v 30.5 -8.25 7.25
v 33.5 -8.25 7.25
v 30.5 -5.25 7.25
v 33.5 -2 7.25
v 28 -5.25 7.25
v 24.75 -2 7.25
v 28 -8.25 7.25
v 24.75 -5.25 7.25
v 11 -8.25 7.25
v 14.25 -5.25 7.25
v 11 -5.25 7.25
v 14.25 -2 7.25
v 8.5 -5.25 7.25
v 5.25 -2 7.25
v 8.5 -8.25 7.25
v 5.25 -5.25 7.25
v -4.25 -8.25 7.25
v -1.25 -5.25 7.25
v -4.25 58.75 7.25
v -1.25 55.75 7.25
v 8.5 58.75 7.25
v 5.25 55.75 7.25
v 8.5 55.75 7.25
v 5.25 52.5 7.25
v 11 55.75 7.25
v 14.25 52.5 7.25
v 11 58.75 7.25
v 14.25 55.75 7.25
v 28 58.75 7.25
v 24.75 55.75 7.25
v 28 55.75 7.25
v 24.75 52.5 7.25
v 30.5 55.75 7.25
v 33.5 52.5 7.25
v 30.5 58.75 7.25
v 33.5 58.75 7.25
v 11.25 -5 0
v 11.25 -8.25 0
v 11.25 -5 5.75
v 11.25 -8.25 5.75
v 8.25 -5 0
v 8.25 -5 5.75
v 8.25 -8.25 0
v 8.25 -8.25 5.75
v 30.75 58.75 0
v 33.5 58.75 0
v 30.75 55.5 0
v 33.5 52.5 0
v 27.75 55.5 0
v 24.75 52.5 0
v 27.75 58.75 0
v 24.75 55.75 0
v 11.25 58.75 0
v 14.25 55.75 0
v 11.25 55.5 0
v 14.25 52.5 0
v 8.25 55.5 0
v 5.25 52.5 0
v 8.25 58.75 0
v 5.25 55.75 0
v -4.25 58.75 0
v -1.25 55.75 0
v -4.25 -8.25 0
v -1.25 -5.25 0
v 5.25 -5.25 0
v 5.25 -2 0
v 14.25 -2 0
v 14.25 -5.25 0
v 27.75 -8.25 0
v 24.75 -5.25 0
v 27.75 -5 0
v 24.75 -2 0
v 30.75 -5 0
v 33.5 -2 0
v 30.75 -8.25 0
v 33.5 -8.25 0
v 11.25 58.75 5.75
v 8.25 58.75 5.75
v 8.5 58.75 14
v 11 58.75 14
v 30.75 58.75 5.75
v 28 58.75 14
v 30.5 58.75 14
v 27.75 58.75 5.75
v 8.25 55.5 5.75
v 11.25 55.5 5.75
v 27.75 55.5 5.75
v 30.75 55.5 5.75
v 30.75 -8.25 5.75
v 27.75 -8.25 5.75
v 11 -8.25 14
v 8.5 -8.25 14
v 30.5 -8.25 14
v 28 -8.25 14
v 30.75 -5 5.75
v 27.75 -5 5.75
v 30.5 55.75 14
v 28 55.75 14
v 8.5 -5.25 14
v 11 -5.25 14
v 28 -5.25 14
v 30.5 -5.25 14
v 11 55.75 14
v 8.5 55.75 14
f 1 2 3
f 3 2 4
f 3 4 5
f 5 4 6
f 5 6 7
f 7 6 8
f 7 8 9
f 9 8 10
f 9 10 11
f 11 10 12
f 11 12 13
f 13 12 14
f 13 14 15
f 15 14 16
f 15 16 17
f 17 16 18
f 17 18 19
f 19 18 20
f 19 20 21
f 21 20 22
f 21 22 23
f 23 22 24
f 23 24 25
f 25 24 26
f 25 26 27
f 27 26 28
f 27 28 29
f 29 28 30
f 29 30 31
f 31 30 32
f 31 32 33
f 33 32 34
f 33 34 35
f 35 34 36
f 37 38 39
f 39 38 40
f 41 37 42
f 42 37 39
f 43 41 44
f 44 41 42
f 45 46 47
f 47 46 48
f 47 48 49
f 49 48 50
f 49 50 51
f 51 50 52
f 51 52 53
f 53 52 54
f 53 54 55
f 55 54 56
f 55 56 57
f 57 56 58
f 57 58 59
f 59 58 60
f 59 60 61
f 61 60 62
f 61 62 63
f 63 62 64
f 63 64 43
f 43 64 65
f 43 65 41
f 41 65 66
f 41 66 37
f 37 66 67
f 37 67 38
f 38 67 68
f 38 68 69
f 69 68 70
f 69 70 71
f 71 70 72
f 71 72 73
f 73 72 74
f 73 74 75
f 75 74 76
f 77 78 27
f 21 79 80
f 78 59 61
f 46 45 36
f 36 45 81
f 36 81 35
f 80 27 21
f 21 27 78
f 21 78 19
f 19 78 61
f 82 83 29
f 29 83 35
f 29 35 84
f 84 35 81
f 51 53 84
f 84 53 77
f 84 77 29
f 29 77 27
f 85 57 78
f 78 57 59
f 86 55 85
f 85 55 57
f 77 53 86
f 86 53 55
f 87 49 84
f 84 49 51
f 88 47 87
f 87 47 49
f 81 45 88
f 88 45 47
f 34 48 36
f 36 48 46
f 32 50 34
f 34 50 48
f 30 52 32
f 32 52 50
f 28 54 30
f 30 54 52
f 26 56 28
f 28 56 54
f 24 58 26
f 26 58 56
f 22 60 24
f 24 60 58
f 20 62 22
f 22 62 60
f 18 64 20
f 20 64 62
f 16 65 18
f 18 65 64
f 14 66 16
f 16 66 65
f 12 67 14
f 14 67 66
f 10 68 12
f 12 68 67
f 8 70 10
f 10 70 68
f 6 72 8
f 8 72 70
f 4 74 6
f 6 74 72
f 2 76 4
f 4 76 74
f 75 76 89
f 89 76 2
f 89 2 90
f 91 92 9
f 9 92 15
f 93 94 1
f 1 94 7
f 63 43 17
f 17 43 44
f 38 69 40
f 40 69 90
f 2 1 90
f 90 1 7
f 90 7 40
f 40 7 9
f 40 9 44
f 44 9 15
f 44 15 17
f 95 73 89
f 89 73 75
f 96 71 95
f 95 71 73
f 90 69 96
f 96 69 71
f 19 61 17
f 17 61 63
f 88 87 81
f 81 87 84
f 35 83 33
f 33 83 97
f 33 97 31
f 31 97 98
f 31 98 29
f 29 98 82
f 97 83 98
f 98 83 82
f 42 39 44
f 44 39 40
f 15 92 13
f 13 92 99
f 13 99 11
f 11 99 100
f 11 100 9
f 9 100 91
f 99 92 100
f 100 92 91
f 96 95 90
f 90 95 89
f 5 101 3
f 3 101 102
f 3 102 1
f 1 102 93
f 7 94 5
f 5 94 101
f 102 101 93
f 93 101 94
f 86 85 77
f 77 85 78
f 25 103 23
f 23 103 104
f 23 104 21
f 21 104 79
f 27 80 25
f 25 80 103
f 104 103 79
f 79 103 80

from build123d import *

# Parameters (mm, degrees)
BOSS_EXTRUDE1_DEPTH   = 7.25
SKETCH2_W             = 2.5
SKETCH2_H             = 3
BOSS_EXTRUDE2_DEPTH   = 8.25
BOSS_EXTRUDE2_2_DEPTH = 8.25
BOSS_EXTRUDE2_3_DEPTH = 8.25
BOSS_EXTRUDE2_4_DEPTH = 8.25
SKETCH3_W             = 3
SKETCH3_H             = 3.25
BOSS_EXTRUDE3_DEPTH   = 1.5


with BuildPart() as part:
    # Sketch1 → Boss-Extrude1 (new body)
    with BuildSketch(Plane.XY):
        Polygon((-4.25, 58.75), (8.25, 58.75), (8.25, 55.5), (11.25, 55.5), (11.25, 58.75), (27.75, 58.75), (27.75, 55.5), (30.75, 55.5), (30.75, 58.75), (33.5, 58.75), (33.5, 52.5), (24.75, 52.5), (24.75, 55.75), (14.25, 55.75), (14.25, 52.5), (5.25, 52.5), (5.25, 55.75), (-1.25, 55.75), (-1.25, -5.25), (5.25, -5.25), (5.25, -2), (14.25, -2), (14.25, -5.25), (24.75, -5.25), (24.75, -2), (33.5, -2), (33.5, -8.25), (30.75, -8.25), (30.75, -5), (27.75, -5), (27.75, -8.25), (11.25, -8.25), (11.25, -5), (8.25, -5), (8.25, -8.25), (-4.25, -8.25), align=None)
    extrude(amount=BOSS_EXTRUDE1_DEPTH)



with BuildPart() as body_2:
    # Sketch2 → Boss-Extrude2 (new body)
    with BuildSketch(Plane.XY.offset(5.75)):
        with Locations((9.75, -6.75)):
            Rectangle(SKETCH2_W, SKETCH2_H)
    extrude(amount=BOSS_EXTRUDE2_DEPTH)


with BuildPart() as body_3:
    # Sketch2 → Boss-Extrude2 2 (new body)
    with BuildSketch(Plane.XY.offset(5.75)):
        with Locations((29.25, -6.75)):
            Rectangle(SKETCH2_W, SKETCH2_H)
    extrude(amount=BOSS_EXTRUDE2_2_DEPTH)


with BuildPart() as body_4:
    # Sketch2 → Boss-Extrude2 3 (new body)
    with BuildSketch(Plane.XY.offset(5.75)):
        with Locations((29.25, 57.25)):
            Rectangle(SKETCH2_W, SKETCH2_H)
    extrude(amount=BOSS_EXTRUDE2_3_DEPTH)


with BuildPart() as body_5:
    # Sketch2 → Boss-Extrude2 4 (new body)
    with BuildSketch(Plane.XY.offset(5.75)):
        with Locations((9.75, 57.25)):
            Rectangle(SKETCH2_W, SKETCH2_H)
    extrude(amount=BOSS_EXTRUDE2_4_DEPTH)


with BuildPart() as part_1:
    add(part.part)

    add(body_2.part)  # Boss-Extrude3 merges body 2

    add(body_3.part)  # Boss-Extrude3 merges body 3

    add(body_4.part)  # Boss-Extrude3 merges body 4

    add(body_5.part)  # Boss-Extrude3 merges body 5
    # Sketch3 → Boss-Extrude3 (add)
    with BuildSketch(Plane(origin=(0, 0, 5.75), x_dir=(-1, 0, 0), z_dir=(0, 0, -1))):
        with Locations((-9.75, 57.125)):
            Rectangle(SKETCH3_W, SKETCH3_H)
        with Locations((-29.25, 57.125)):
            Rectangle(SKETCH3_W, SKETCH3_H)
        with Locations((-29.25, -6.625)):
            Rectangle(SKETCH3_W, SKETCH3_H)
        with Locations((-9.75, -6.625)):
            Rectangle(SKETCH3_W, SKETCH3_H)
    extrude(amount=-BOSS_EXTRUDE3_DEPTH)


solid = part_1.part
